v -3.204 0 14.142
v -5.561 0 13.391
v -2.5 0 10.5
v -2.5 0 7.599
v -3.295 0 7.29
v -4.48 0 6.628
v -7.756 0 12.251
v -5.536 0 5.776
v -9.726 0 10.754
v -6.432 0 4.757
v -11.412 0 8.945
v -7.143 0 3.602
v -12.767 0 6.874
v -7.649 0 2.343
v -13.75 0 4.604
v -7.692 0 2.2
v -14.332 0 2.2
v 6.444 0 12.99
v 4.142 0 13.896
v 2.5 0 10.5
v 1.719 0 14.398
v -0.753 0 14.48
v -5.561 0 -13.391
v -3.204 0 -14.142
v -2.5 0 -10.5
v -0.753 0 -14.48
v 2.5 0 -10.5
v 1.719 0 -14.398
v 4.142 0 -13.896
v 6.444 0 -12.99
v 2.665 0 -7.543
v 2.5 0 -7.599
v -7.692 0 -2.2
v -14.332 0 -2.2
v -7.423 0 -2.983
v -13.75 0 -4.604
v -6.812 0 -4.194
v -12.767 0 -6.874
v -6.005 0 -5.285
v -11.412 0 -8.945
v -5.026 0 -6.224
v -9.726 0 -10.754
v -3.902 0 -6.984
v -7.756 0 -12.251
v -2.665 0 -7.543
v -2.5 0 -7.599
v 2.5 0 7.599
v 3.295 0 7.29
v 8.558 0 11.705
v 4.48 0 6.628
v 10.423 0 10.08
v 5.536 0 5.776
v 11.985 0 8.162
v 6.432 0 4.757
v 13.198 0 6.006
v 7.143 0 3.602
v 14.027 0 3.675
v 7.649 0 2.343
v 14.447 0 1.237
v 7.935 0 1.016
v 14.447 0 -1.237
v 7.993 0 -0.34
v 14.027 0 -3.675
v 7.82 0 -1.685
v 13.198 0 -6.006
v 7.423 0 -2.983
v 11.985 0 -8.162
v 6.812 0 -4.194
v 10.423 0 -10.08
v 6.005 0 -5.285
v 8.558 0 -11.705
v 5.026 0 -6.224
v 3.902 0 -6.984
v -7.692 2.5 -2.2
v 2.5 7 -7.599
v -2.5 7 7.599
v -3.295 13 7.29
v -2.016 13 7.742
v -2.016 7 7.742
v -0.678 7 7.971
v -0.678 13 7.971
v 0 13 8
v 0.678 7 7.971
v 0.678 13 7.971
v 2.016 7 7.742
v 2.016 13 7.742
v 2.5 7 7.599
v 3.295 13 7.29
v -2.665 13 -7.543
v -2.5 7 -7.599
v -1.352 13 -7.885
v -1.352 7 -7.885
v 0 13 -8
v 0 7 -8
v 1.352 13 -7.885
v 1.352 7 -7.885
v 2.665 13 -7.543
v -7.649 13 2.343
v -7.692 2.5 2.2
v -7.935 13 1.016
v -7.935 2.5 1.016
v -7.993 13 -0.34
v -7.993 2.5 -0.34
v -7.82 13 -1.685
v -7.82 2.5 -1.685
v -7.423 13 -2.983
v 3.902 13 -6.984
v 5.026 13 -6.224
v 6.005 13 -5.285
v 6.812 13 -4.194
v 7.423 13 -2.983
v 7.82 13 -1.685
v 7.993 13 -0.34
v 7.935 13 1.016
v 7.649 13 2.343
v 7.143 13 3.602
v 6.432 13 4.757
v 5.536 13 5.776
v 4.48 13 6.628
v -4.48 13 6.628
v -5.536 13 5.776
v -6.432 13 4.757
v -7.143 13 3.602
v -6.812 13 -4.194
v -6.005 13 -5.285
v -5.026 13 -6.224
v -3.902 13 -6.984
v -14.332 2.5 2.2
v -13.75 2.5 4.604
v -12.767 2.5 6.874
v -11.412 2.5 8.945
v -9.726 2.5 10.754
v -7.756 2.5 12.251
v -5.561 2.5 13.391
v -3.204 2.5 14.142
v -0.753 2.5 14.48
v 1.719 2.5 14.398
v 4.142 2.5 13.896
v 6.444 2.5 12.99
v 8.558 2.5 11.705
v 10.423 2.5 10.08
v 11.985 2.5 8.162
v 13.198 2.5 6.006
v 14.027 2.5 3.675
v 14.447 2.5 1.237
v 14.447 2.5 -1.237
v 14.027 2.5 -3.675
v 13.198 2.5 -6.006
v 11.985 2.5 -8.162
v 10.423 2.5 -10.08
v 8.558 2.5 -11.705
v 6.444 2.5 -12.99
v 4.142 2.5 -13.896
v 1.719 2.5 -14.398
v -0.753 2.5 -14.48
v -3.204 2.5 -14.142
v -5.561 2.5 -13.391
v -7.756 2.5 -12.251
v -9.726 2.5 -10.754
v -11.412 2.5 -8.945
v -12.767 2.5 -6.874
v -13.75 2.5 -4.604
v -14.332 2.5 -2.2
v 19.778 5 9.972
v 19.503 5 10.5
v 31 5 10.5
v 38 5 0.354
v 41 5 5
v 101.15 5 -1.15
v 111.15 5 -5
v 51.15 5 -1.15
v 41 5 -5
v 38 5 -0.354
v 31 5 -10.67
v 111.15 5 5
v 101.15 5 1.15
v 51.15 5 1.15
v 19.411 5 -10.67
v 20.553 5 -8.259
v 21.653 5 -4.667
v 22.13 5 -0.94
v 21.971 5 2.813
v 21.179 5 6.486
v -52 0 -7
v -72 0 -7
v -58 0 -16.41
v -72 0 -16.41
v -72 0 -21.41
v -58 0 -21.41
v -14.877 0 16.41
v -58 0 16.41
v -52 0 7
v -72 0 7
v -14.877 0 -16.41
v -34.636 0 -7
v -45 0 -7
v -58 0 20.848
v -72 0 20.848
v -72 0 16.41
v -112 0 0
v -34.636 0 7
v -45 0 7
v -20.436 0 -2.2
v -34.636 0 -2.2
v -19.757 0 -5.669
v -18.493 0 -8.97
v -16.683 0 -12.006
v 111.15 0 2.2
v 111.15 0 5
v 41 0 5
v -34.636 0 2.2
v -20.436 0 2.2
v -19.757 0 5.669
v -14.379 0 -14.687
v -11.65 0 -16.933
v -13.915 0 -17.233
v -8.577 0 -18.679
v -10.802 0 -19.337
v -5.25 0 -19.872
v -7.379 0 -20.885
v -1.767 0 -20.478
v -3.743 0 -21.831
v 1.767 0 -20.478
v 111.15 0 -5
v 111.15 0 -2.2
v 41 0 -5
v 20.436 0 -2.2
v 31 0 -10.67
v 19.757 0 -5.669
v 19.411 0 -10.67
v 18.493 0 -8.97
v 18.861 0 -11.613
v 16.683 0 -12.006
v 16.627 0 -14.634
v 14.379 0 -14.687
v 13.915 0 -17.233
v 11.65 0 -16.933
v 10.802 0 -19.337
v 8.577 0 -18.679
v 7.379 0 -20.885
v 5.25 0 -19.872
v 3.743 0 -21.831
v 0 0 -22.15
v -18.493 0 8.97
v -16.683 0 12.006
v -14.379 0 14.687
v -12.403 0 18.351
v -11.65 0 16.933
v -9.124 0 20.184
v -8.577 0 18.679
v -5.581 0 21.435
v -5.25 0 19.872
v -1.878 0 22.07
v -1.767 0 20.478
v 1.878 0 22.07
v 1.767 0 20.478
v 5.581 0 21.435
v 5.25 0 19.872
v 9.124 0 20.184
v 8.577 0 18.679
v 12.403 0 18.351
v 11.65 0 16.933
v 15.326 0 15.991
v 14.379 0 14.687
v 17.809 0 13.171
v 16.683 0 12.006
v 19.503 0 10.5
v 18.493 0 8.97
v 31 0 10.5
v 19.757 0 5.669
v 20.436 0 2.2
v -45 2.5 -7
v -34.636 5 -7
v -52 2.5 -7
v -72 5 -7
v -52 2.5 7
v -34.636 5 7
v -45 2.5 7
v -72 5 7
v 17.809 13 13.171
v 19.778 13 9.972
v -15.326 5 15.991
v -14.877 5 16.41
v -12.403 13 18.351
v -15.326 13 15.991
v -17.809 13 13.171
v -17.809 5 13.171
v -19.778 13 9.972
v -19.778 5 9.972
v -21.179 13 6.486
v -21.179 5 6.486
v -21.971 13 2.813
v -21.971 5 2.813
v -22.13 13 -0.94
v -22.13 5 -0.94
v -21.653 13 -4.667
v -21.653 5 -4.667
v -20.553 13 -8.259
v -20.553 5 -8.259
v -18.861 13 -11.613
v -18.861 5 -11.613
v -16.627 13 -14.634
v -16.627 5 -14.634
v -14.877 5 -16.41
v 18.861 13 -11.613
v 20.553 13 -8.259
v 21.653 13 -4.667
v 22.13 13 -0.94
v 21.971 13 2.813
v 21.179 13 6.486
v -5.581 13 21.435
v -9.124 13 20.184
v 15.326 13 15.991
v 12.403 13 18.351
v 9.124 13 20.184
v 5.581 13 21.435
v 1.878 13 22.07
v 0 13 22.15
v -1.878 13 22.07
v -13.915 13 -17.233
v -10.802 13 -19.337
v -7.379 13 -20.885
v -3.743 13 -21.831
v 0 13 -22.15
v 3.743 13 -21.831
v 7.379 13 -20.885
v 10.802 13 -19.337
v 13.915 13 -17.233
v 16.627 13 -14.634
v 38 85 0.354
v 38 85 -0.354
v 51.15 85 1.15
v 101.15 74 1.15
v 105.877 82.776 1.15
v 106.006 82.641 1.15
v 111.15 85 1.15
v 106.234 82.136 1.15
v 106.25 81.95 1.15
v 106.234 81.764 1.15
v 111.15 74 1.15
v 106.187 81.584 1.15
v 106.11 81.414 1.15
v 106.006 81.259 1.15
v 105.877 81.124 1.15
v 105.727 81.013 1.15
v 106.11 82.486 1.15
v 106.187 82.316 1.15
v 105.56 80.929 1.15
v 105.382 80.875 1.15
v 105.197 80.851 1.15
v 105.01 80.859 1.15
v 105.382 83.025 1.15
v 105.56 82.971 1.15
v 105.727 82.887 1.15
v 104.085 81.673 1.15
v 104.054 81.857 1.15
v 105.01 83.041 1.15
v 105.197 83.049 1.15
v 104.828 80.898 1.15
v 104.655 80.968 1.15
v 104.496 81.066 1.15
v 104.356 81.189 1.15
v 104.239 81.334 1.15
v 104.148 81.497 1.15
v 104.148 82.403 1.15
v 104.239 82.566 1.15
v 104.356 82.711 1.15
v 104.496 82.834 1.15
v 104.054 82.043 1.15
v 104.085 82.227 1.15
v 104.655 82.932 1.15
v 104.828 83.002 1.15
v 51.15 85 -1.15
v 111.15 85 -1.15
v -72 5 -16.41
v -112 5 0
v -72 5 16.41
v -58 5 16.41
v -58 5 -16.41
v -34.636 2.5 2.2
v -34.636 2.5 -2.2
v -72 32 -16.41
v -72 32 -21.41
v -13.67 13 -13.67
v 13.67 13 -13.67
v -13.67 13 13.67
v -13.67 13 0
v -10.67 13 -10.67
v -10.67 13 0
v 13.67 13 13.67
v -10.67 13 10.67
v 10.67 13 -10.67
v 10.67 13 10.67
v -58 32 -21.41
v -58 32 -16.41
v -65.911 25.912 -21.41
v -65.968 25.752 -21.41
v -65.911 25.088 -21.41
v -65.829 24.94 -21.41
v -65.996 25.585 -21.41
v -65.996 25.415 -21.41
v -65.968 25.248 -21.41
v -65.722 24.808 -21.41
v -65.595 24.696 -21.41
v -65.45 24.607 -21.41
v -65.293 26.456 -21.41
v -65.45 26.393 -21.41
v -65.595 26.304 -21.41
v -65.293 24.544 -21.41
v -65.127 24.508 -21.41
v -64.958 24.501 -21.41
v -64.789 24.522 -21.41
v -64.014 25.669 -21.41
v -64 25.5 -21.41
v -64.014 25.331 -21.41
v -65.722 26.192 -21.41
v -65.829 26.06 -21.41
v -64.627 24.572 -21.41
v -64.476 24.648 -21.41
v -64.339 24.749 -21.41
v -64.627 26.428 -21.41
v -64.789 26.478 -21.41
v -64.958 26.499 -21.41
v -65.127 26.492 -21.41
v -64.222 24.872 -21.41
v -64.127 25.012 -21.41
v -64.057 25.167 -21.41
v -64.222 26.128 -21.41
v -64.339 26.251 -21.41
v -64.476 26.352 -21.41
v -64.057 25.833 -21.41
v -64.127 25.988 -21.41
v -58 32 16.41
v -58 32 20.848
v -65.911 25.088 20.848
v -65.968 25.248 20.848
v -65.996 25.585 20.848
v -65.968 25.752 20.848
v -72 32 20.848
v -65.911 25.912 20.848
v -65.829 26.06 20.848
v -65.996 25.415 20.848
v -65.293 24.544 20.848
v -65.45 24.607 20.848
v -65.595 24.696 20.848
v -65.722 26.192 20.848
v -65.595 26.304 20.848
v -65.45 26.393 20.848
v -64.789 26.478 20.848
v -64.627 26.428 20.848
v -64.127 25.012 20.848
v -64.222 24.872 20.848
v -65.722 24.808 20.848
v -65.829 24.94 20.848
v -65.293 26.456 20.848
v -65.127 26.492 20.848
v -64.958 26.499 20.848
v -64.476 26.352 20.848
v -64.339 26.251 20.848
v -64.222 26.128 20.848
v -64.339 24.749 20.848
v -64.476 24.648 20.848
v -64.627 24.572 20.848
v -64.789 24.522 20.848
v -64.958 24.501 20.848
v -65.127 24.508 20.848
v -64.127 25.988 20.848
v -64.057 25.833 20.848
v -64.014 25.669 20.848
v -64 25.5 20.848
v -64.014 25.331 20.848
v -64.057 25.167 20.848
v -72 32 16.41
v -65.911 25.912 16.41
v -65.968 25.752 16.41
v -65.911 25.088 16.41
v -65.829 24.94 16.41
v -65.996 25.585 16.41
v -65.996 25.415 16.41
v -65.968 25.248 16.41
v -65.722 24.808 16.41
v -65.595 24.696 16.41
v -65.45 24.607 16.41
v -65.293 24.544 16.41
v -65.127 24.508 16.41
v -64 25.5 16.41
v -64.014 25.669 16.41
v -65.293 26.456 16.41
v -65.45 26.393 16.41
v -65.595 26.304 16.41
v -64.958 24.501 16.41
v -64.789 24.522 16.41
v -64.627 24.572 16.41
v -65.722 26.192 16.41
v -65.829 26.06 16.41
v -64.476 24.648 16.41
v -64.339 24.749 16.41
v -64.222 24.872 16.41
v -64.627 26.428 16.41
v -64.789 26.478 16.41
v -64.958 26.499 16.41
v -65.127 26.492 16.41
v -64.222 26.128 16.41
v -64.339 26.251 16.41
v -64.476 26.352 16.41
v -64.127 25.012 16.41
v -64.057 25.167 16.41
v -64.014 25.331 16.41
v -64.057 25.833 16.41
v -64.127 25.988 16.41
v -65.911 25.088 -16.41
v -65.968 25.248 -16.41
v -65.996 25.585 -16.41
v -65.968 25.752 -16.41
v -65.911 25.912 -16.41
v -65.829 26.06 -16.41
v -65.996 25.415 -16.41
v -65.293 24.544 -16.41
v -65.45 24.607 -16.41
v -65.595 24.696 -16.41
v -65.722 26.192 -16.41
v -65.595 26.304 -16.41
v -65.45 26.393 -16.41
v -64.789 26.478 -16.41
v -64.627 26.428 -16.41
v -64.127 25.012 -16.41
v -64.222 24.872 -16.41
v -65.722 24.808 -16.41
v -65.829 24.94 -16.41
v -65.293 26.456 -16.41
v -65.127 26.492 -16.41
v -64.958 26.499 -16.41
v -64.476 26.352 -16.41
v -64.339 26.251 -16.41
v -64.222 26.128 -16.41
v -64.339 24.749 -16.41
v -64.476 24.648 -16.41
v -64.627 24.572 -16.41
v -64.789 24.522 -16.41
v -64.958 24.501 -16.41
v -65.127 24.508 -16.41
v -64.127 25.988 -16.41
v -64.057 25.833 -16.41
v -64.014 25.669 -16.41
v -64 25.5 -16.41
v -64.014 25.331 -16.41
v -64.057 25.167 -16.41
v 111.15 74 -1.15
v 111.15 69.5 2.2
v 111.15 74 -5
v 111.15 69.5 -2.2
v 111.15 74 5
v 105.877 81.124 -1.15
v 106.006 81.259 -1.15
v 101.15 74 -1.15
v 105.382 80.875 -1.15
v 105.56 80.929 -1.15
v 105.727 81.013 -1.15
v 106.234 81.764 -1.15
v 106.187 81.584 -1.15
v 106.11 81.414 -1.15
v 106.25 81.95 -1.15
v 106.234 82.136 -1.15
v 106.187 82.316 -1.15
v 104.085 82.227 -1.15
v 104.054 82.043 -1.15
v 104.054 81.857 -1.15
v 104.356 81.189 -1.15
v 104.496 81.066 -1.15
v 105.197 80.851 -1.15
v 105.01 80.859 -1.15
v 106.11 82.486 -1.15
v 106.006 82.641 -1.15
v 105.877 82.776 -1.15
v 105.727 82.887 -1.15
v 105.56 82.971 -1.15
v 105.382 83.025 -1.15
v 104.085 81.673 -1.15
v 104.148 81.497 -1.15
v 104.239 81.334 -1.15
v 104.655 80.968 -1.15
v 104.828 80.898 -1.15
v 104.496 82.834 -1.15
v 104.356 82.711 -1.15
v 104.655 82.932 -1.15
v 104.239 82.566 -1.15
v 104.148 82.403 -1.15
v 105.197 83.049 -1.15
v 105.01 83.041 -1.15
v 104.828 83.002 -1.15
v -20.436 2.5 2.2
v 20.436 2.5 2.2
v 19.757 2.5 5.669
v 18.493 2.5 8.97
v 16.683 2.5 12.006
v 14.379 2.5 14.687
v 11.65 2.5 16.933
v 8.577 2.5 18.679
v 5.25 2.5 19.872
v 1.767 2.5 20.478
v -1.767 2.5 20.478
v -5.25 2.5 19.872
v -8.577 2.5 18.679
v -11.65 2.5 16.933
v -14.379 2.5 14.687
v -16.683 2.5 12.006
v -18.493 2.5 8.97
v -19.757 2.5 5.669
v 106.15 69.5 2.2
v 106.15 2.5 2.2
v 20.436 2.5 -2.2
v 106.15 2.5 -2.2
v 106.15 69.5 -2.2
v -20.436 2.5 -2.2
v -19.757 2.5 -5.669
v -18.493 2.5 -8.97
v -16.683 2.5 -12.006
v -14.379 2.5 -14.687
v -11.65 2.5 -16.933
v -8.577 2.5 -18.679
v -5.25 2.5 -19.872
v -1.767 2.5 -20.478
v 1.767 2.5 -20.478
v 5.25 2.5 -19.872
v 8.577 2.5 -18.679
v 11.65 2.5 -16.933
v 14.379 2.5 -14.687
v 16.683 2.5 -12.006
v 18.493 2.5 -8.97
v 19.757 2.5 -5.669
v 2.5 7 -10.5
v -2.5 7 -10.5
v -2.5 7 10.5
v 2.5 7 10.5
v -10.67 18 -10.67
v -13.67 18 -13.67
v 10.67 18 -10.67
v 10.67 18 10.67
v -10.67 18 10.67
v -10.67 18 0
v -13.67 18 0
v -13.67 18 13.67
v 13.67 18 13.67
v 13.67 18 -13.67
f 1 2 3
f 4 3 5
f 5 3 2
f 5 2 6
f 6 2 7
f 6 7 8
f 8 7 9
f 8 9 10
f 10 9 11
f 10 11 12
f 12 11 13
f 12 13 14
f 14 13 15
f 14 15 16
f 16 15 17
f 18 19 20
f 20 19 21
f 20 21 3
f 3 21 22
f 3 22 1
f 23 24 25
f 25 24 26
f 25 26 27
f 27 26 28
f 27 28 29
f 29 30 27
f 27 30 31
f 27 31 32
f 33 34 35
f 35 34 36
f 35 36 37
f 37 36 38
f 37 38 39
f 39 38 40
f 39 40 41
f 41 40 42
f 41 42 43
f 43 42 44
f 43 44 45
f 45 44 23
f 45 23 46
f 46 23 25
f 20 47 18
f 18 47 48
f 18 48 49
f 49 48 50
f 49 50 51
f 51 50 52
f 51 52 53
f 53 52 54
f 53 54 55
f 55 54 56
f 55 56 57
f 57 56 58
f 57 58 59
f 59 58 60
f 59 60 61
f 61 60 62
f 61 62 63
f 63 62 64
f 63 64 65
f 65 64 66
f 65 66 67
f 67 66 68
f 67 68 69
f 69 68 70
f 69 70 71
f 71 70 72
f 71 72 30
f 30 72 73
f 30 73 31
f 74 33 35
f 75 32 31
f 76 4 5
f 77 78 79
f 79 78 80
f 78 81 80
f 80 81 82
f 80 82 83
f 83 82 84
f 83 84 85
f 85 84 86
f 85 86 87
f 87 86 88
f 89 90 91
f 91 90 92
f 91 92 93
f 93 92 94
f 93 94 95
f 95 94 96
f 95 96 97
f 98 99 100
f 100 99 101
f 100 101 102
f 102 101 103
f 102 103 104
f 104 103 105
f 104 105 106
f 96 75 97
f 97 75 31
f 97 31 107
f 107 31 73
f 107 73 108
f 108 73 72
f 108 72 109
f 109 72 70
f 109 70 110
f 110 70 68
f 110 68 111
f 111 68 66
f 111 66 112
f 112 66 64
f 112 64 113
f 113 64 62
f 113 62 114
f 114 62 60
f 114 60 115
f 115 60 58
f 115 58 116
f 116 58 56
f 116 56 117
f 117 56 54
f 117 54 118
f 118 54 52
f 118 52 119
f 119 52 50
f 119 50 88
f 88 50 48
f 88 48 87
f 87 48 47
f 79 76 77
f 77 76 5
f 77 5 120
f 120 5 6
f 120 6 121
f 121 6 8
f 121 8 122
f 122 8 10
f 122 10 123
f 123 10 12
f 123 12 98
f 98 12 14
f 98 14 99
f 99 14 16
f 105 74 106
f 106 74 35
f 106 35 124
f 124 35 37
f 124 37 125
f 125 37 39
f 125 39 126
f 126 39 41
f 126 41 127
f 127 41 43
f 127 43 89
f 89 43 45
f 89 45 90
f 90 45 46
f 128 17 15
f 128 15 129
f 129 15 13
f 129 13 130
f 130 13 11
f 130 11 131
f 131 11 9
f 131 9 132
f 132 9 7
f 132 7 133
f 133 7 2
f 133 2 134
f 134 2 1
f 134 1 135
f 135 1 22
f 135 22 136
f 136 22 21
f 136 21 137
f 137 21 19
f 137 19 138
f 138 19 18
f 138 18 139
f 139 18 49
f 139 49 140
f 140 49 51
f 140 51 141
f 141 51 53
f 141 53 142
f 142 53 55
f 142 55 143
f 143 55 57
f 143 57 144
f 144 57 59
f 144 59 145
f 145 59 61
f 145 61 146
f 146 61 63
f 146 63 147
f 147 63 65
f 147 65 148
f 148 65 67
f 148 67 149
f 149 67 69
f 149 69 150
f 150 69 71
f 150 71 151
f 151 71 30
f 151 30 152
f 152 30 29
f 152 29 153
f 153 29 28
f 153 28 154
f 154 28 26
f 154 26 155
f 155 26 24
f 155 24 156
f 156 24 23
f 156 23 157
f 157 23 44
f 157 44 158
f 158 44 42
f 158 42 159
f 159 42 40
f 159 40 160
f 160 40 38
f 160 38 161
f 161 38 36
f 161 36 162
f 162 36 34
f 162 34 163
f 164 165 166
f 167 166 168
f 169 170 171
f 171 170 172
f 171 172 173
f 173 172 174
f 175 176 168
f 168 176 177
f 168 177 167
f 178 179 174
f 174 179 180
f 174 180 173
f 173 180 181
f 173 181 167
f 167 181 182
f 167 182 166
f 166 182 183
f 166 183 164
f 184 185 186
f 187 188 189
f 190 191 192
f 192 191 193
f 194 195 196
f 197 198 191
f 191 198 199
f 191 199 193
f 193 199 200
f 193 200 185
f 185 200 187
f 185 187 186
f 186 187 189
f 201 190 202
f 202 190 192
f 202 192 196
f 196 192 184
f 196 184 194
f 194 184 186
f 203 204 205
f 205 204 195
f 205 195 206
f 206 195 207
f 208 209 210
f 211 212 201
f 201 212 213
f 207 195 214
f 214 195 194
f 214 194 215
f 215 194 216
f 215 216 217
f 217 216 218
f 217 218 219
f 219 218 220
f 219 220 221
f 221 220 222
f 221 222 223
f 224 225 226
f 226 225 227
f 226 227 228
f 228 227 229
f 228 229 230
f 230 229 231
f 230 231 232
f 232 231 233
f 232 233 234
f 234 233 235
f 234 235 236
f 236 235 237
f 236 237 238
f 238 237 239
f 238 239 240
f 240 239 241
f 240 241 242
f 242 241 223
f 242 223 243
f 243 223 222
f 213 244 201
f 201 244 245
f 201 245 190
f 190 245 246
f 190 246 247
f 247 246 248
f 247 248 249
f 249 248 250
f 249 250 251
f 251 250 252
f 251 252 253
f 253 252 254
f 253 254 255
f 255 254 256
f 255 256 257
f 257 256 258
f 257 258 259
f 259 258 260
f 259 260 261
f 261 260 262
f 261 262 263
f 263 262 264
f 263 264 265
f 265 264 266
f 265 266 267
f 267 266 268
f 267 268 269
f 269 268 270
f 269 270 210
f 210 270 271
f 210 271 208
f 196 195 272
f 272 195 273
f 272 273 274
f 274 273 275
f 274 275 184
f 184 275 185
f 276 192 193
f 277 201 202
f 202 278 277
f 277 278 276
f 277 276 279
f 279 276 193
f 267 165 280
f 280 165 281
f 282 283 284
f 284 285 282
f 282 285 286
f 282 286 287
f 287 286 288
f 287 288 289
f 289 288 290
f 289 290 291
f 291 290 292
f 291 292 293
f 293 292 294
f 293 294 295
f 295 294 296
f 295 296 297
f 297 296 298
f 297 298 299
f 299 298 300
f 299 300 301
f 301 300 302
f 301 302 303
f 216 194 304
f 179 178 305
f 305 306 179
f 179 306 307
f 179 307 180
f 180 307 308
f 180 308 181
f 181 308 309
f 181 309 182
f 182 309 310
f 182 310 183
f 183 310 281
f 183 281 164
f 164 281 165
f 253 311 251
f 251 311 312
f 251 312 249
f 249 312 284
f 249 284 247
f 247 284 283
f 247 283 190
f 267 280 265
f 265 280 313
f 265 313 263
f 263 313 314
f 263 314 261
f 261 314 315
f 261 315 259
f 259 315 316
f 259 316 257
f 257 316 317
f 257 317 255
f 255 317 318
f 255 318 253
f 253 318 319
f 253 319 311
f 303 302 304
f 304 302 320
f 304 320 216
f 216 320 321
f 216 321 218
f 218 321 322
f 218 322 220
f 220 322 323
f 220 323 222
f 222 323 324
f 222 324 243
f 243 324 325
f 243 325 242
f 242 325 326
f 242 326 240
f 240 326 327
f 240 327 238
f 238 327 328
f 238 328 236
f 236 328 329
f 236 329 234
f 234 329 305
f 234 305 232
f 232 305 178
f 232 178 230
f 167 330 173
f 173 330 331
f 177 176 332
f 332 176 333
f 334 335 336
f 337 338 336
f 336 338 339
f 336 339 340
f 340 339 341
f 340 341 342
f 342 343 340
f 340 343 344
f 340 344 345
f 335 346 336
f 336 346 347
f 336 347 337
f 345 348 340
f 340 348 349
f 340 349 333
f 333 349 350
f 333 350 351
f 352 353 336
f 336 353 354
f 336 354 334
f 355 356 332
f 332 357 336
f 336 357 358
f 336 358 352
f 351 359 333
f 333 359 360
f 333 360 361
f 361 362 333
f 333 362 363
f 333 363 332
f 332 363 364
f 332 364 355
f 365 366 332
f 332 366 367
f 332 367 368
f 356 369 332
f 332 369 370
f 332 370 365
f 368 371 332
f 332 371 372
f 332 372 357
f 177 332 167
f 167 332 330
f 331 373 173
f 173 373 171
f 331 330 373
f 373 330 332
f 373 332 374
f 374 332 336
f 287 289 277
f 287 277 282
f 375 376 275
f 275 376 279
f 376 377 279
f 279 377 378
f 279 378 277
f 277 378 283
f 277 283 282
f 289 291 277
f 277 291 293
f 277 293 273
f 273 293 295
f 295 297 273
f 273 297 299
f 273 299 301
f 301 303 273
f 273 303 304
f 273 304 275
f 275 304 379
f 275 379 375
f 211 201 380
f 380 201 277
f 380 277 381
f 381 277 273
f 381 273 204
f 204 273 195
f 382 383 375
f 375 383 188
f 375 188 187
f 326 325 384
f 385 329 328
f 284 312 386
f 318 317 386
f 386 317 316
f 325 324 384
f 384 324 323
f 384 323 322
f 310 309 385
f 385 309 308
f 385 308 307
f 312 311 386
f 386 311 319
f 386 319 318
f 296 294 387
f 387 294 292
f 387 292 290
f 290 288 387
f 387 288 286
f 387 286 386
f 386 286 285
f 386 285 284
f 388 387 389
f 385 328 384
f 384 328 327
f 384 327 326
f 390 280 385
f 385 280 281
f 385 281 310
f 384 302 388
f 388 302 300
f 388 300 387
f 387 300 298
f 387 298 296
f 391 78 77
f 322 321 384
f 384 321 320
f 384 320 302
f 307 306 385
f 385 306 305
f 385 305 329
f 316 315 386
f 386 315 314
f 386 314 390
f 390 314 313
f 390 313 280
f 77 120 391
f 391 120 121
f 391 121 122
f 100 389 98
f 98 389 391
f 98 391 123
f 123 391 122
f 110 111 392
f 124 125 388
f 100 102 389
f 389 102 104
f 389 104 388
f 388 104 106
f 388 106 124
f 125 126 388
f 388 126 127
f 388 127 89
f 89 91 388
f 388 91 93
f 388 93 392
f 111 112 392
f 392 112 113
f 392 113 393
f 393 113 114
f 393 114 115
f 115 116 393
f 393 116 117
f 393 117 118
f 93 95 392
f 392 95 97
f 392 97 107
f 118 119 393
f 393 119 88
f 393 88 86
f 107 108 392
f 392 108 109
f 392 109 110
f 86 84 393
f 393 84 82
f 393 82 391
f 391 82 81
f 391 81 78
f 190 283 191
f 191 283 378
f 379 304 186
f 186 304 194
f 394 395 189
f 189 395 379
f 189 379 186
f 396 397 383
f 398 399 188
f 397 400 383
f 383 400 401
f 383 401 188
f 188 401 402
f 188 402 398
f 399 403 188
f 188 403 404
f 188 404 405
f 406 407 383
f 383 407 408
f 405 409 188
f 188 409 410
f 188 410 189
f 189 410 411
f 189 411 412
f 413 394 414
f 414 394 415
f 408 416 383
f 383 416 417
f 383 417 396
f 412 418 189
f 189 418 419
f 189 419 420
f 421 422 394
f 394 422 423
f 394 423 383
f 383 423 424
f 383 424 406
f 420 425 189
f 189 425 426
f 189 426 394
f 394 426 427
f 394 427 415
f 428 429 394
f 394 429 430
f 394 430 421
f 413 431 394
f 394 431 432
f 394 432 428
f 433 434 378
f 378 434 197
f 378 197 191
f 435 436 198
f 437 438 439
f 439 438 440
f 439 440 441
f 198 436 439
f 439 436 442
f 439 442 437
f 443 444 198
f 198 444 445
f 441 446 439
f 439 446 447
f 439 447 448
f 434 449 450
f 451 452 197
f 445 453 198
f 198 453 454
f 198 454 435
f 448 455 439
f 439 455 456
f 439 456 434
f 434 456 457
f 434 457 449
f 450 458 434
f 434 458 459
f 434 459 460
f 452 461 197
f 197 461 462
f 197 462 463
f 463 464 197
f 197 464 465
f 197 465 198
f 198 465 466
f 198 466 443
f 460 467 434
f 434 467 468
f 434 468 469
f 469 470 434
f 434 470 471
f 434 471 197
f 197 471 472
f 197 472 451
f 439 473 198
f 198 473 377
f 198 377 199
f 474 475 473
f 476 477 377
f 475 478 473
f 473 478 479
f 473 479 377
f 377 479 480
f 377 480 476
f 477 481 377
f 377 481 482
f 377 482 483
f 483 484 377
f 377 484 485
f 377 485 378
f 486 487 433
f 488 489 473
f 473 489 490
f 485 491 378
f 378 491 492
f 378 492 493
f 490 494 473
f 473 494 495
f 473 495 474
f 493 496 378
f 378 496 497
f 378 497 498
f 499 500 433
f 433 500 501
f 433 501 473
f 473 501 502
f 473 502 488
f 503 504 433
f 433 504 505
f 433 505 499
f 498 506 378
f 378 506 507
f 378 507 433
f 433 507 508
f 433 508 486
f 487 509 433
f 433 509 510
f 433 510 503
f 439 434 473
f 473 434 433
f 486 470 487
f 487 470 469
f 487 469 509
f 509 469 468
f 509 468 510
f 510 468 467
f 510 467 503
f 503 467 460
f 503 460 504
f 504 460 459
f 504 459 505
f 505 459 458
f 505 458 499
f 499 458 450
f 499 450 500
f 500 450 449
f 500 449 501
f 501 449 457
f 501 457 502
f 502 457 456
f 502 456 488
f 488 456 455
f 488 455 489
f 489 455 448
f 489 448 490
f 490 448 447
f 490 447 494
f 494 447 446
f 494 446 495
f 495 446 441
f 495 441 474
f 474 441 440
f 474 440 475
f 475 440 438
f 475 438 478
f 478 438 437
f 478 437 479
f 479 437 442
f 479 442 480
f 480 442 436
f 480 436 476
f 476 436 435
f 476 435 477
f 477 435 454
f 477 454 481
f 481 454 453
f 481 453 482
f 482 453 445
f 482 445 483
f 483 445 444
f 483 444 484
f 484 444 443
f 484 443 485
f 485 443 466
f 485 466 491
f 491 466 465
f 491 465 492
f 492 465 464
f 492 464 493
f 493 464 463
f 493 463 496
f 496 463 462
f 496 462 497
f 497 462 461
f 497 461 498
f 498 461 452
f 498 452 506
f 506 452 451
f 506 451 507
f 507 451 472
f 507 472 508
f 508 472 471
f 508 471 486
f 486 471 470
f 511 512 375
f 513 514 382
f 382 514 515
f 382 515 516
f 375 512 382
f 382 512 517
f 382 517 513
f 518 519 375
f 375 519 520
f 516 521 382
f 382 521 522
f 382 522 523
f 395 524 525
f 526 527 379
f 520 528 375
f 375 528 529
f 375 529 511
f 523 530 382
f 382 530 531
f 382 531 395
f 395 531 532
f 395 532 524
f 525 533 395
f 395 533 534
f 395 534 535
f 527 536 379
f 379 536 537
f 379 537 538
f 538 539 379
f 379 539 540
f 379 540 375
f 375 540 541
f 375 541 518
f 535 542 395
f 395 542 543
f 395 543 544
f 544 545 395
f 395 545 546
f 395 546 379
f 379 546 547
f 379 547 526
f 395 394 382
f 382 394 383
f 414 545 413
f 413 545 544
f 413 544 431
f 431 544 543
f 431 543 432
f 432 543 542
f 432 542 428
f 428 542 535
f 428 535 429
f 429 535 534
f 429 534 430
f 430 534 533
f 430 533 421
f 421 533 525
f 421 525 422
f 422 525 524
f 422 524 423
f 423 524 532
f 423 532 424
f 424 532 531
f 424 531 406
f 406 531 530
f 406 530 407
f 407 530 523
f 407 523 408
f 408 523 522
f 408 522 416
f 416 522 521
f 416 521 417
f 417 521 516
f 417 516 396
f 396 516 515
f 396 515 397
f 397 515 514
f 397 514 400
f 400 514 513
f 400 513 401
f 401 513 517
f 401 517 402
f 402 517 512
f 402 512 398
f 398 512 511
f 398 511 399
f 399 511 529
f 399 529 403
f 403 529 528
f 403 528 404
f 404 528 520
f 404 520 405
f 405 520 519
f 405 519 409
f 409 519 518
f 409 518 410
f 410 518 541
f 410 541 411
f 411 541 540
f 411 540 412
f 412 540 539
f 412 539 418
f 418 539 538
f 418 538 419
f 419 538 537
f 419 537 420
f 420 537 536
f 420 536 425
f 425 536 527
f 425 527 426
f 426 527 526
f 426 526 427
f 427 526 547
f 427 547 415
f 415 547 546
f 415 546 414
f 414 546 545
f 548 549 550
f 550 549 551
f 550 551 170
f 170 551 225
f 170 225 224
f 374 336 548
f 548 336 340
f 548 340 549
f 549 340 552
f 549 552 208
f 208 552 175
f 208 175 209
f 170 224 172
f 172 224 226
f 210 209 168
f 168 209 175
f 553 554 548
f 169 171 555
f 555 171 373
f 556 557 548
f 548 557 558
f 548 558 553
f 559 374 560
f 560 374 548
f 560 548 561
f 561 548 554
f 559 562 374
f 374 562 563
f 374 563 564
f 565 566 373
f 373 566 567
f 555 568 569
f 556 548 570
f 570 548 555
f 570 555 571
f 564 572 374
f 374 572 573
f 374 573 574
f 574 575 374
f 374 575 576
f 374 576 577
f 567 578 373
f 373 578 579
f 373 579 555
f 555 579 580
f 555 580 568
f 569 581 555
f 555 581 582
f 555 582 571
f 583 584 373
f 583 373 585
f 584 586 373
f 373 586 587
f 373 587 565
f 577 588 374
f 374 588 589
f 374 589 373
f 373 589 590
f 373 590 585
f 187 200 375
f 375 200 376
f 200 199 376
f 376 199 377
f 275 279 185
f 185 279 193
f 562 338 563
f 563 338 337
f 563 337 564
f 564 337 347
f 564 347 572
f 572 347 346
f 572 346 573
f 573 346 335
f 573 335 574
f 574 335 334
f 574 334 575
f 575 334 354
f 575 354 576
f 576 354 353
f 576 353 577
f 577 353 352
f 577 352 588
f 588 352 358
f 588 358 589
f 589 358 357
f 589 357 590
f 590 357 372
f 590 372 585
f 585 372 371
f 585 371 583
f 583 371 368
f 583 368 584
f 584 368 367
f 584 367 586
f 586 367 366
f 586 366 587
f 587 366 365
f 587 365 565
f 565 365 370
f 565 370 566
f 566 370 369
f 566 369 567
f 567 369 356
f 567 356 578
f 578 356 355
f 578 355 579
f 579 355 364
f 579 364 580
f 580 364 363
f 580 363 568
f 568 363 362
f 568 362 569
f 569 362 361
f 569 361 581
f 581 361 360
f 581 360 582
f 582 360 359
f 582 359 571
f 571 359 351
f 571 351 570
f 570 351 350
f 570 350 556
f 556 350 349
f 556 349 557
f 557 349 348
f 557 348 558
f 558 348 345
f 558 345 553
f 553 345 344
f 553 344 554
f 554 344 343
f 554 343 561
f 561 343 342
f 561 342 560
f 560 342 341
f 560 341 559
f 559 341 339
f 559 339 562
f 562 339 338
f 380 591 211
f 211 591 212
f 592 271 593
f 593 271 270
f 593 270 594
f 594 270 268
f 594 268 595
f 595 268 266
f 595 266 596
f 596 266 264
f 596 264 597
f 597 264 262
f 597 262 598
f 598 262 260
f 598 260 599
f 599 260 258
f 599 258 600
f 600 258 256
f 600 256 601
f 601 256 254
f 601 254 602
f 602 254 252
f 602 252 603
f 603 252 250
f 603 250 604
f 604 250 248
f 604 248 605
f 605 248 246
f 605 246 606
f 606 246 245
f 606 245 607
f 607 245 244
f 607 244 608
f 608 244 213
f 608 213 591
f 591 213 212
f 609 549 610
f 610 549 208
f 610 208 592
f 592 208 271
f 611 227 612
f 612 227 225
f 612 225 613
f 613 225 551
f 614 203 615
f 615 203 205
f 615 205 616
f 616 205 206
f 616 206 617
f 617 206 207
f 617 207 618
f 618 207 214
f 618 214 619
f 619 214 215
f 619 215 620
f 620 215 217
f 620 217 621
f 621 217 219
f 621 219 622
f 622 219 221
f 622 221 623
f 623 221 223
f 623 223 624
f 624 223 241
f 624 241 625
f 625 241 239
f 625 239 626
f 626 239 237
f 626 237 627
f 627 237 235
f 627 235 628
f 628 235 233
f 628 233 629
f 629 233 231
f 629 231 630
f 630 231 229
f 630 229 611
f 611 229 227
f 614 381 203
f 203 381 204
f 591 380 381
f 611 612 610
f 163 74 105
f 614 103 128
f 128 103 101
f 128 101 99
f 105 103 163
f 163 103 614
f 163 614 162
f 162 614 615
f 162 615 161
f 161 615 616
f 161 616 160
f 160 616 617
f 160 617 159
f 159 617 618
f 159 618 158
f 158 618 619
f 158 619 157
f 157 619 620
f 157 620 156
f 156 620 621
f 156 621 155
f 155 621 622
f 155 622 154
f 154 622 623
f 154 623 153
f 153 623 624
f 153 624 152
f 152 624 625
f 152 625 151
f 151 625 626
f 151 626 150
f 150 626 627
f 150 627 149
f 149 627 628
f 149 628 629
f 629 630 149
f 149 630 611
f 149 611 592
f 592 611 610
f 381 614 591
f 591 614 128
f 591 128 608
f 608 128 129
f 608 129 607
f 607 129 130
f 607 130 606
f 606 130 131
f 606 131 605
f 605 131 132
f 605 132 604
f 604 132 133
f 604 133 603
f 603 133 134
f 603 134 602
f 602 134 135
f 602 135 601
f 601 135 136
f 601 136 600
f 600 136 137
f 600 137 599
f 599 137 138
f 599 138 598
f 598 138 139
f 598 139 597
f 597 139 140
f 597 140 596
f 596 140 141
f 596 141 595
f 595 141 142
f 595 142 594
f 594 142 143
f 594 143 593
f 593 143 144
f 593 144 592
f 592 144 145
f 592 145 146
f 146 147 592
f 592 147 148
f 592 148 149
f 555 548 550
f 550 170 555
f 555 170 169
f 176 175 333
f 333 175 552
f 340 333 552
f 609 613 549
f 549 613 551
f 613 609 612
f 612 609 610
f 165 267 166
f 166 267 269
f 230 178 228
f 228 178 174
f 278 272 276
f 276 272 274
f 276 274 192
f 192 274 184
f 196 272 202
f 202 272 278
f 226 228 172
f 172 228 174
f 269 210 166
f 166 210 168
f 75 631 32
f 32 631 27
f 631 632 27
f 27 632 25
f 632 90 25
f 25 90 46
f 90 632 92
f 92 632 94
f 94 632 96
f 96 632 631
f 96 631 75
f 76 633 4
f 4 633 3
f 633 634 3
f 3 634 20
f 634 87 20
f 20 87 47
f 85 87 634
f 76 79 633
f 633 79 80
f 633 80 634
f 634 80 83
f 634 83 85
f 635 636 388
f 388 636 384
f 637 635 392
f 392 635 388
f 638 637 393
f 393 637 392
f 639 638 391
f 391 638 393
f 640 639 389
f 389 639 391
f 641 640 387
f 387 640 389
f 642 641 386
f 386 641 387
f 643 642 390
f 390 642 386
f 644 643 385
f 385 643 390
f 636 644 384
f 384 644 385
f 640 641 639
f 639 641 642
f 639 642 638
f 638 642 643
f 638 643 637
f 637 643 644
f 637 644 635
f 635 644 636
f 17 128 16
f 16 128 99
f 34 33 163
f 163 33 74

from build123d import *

# Parameters (mm, degrees)
SKETCH1_R                 = 22.15
SKETCH1_R_2               = 16.15
BOSS_EXTRUDE1_DEPTH       = 10
SKETCH2_R                 = 22.15
SKETCH2_R_2               = 12.15
BOSS_EXTRUDE2_DEPTH       = 3
BOSS_EXTRUDE3_START       = -13
BOSS_EXTRUDE3_DEPTH       = 5
SKETCH10_W                = 7
SKETCH10_H                = 4.438143107
SKETCH10_H_2              = 5
BOSS_EXTRUDE5_DEPTH       = 27
SKETCH11_R                = 1
CUT_EXTRUDE2_DEPTH        = 90.759903691
SKETCH12_W                = 14
SKETCH12_H                = 42.258143107
BOSS_EXTRUDE6_DEPTH       = 5
BOSS_EXTRUDE7_DEPTH       = 5
BOSS_EXTRUDE8_DEPTH       = 80
SKETCH16_W                = 26.34
SKETCH16_H                = 26.34
SKETCH16_W_2              = 21.34
SKETCH16_H_2              = 21.34
BOSS_EXTRUDE9_DEPTH       = 6
SKETCH17_W                = 2.5
SKETCH17_H                = 10.67
CUT_EXTRUDE3_DEPTH        = 6
BOSS_EXTRUDE11_DEPTH      = 5
BOSS_EXTRUDE12_START      = -2
SKETCH23_R                = 12.15
SKETCH23_R_2              = 8
BOSS_EXTRUDE12_DEPTH      = 1
SKETCH24_W                = 37.364360225
SKETCH24_H                = 7
CUT_EXTRUDE5_DEPTH        = 10
SKETCH25_R                = 1.1
CUT_EXTRUDE6_DEPTH        = 10
CUT_EXTRUDE8_DEPTH        = 80
SKETCH29_R                = 20.553911634
SKETCH29_R_2              = 17.753911634
CUT_EXTRUDE9_DEPTH        = 2.5
BOSS_EXTRUDE13_REACH      = 136.976
SKETCH30_W                = 7
SKETCH30_H                = 3
SKETCH31_W                = 3
SKETCH31_H                = 14
CUT_EXTRUDE10_DEPTH       = 135.976377563
CUT_EXTRUDE11_DEPTH       = 140.4081149
SKETCH36_W                = 26.34
SKETCH36_H                = 26.34
CUT_EXTRUDE12_DEPTH       = 6
SKETCH37_W                = 3
SKETCH37_H                = 4.4
CUT_EXTRUDE13_DEPTH       = 2.5
BOSS_EXTRUDE15_DEPTH      = 69
SKETCH41_W                = 4.4
SKETCH41_H                = 67
CUT_EXTRUDE14_DEPTH       = 5
BOSS_EXTRUDE16_REACH      = 175.826
BOSS_EXTRUDE16_END_RADIUS = 22.15
SKETCH42_W                = 5.67
SKETCH42_H                = 5
SKETCH42_W_2              = 5.5
SKETCH43_W                = 7
SKETCH43_H                = 2.5
BOSS_EXTRUDE17_DEPTH      = 14
CUT_EXTRUDE15_DEPTH       = 8
CUT_EXTRUDE16_DEPTH       = 140.4081149
BOSS_EXTRUDE18_START      = 2
SKETCH48_R                = 12.15
SKETCH48_R_2              = 8
BOSS_EXTRUDE18_DEPTH      = 2
BOSS_EXTRUDE19_START      = 10
SKETCH49_R                = 16.15
SKETCH49_R_2              = 8
BOSS_EXTRUDE19_DEPTH      = 10
SKETCH50_R                = 17.753911634
SKETCH50_R_2              = 14.5
CUT_EXTRUDE17_DEPTH       = 2.5
CUT_EXTRUDE18_DEPTH       = 7
BOSS_EXTRUDE20_DEPTH      = 5
CUT_EXTRUDE20_DEPTH       = 2.5


with BuildPart() as part:
    # Sketch1 → Boss-Extrude1 (new body)
    with BuildSketch(Plane(origin=(0, 0, 0), x_dir=(1, 0, 0), z_dir=(0, 1, 0))):
        with Locations(Location((0, 0, 0), (0, 0, 270))):
            Circle(SKETCH1_R)
        with Locations(Location((0, 0, 0), (0, 0, 270))):
            Circle(SKETCH1_R_2, mode=Mode.SUBTRACT)
    extrude(amount=BOSS_EXTRUDE1_DEPTH)

    # Sketch2 → Boss-Extrude2 (add)
    with BuildSketch(Plane(origin=(0, 10, 0), x_dir=(1, 0, 0), z_dir=(0, 1, 0))):
        with Locations(Location((0, 0, 0), (0, 0, 270))):
            Circle(SKETCH2_R)
        with Locations(Location((0, 0, 0), (0, 0, 270))):
            Circle(SKETCH2_R_2, mode=Mode.SUBTRACT)
    extrude(amount=BOSS_EXTRUDE2_DEPTH)

    # Sketch3 → Boss-Extrude3 (add)
    with BuildSketch(Plane(origin=(0, 13, 0), x_dir=(1, 0, 0), z_dir=(0, 1, 0)).offset(BOSS_EXTRUDE3_START)):
        with BuildLine():
            Line((-65, 0), (-22.15, 0))
            ThreePointArc((-22.15, 0), (-20.25036977, 8.974687972), (-14.877311585, 16.41))
            Line((-14.877311585, 16.41), (-65, 16.41))
            Line((-65, 16.41), (-65, 0))
        make_face()
        with BuildLine():
            ThreePointArc((-14.877311585, -16.41), (-20.25036977, -8.974687972), (-22.15, 0))
            Line((-22.15, 0), (-65, 0))
            Line((-65, 0), (-65, -16.41))
            Line((-65, -16.41), (-14.877311585, -16.41))
        make_face()
    extrude(amount=BOSS_EXTRUDE3_DEPTH)



with BuildPart() as body_2:
    # Sketch10 → Boss-Extrude5 (new body)
    with BuildSketch(Plane(origin=(0, 5, 0), x_dir=(1, 0, 0), z_dir=(0, 1, 0))):
        with Locations((-68.5, -18.629071554)):
            Rectangle(SKETCH10_W, SKETCH10_H)
        with Locations((-61.5, -18.629071554)):
            Rectangle(SKETCH10_W, SKETCH10_H)
        with Locations((-68.5, 18.91)):
            Rectangle(SKETCH10_W, SKETCH10_H_2)
        with Locations((-61.5, 18.91)):
            Rectangle(SKETCH10_W, SKETCH10_H_2)
    extrude(amount=BOSS_EXTRUDE5_DEPTH)

    # Sketch11 → Cut-Extrude2 (cut, through all)
    with BuildSketch(Plane.XY.offset(20.848143107)):
        with Locations((-65, 25.5)):
            Circle(SKETCH11_R)
    extrude(amount=-CUT_EXTRUDE2_DEPTH, mode=Mode.SUBTRACT)


with BuildPart() as part_1:
    add(part.part)

    add(body_2.part)  # Boss-Extrude6 merges body 2
    # Sketch12 → Boss-Extrude6 (add)
    with BuildSketch(Plane.XZ):
        with Locations((-65, -0.280928446)):
            Rectangle(SKETCH12_W, SKETCH12_H)
    extrude(amount=-BOSS_EXTRUDE6_DEPTH)

    # Sketch13 → Boss-Extrude7 (add)
    with BuildSketch(Plane.XZ):
        with BuildLine():
            Line((111.15, 0), (22.15, 0))
            ThreePointArc((22.15, 0), (22.006607786, -2.516289677), (21.578287699, -5))
            Line((21.578287699, -5), (111.15, -5))
            Line((111.15, -5), (111.15, 0))
        make_face()
        with BuildLine():
            ThreePointArc((21.578287699, 5), (22.006607786, 2.516289677), (22.15, 0))
            Line((22.15, 0), (111.15, 0))
            Line((111.15, 0), (111.15, 5))
            Line((111.15, 5), (21.578287699, 5))
        make_face()
    extrude(amount=-BOSS_EXTRUDE7_DEPTH)

    # Sketch14 → Boss-Extrude8 (add)
    with BuildSketch(Plane(origin=(0, 5, 0), x_dir=(1, 0, 0), z_dir=(0, 1, 0))):
        Polygon((111.15, -1.15), (111.15, 0), (111.15, 1.15), (51.15, 1.15), (32.15, 0), (51.15, -1.15), align=None)
    extrude(amount=BOSS_EXTRUDE8_DEPTH)

    # Sketch16 → Boss-Extrude9 (add)
    with BuildSketch(Plane(origin=(0, 13, 0), x_dir=(1, 0, 0), z_dir=(0, 1, 0))):
        with Locations((0.03, 0.03)):
            Rectangle(SKETCH16_W, SKETCH16_H)
        with Locations((0.03, 0.03)):
            Rectangle(SKETCH16_W_2, SKETCH16_H_2, mode=Mode.SUBTRACT)
    extrude(amount=BOSS_EXTRUDE9_DEPTH)

    # Sketch17 → Cut-Extrude3 (cut)
    with BuildSketch(Plane(origin=(0, 19, 0), x_dir=(1, 0, 0), z_dir=(0, 1, 0))):
        with Locations((-11.89, 5.365)):
            Rectangle(SKETCH17_W, SKETCH17_H)
    extrude(amount=-CUT_EXTRUDE3_DEPTH, mode=Mode.SUBTRACT)

    # Sketch20 → Boss-Extrude11 (add)
    with BuildSketch(Plane(origin=(0, 5, 0), x_dir=(1, 0, 0), z_dir=(0, 1, 0))):
        Polygon((-112, 0), (-72, 0), (-72, 16.41), align=None)
        Polygon((-72, -16.41), (-72, 0), (-112, 0), align=None)
    extrude(amount=-BOSS_EXTRUDE11_DEPTH)

    # Sketch23 → Boss-Extrude12 (add)
    with BuildSketch(Plane.XZ.offset(-10).offset(BOSS_EXTRUDE12_START)):
        with Locations(Location((0, 0, 0), (0, 0, 270))):
            Circle(SKETCH23_R)
        with Locations(Location((0, 0, 0), (0, 0, 270))):
            Circle(SKETCH23_R_2, mode=Mode.SUBTRACT)
    extrude(amount=-BOSS_EXTRUDE12_DEPTH)

    # Sketch24 → Cut-Extrude5 (cut)
    with BuildSketch(Plane(origin=(0, 5, 0), x_dir=(1, 0, 0), z_dir=(0, 1, 0))):
        with Locations((-53.317819888, 3.5)):
            Rectangle(SKETCH24_W, SKETCH24_H)
        with Locations((-53.317819888, -3.5)):
            Rectangle(SKETCH24_W, SKETCH24_H)
    extrude(amount=-CUT_EXTRUDE5_DEPTH, mode=Mode.SUBTRACT)

    # Sketch25 → Cut-Extrude6 (cut)
    with BuildSketch(Plane.XY.offset(1.15)):
        with Locations((105.15, 81.95)):
            Circle(SKETCH25_R)
    extrude(amount=-CUT_EXTRUDE6_DEPTH, mode=Mode.SUBTRACT)

    # Sketch28 → Cut-Extrude8 (cut)
    with BuildSketch(Plane(origin=(0, 85, 0), x_dir=(1, 0, 0), z_dir=(0, 1, 0))):
        Polygon((36.15, 0.242105263), (32.15, 0), (36.15, 0), align=None)
        Polygon((36.15, 0), (32.15, 0), (36.15, -0.242105263), align=None)
    extrude(amount=-CUT_EXTRUDE8_DEPTH, mode=Mode.SUBTRACT)

    # Sketch29 → Cut-Extrude9 (cut)
    # profile 1 of 4: a face of its own
    with BuildSketch(Plane.XZ):
        with BuildLine():
            Line((111.15, -2.2), (111.15, 0))
            Line((111.15, 0), (111.15, 2.2))
            Line((111.15, 2.2), (20.435833319, 2.2))
            ThreePointArc((20.435833319, 2.2), (20.524370827, 1.101583234), (20.553911634, 0))
            ThreePointArc((20.553911634, 0), (20.524370827, -1.101583234), (20.435833319, -2.2))
            Line((20.435833319, -2.2), (111.15, -2.2))
        make_face()
    # profile 2 of 4: a face of its own
    with BuildSketch(Plane.XZ):
        Circle(SKETCH29_R)
        with Locations(Location((0, 0, 0), (0, 0, 270))):
            Circle(SKETCH29_R_2, mode=Mode.SUBTRACT)
    # profile 3 of 4: a face of its own
    with BuildSketch(Plane.XZ):
        with BuildLine():
            Line((-34.635639775, -2.2), (-20.435833319, -2.2))
            ThreePointArc((-20.435833319, -2.2), (-20.524370827, -1.101583234), (-20.553911634, 0))
            Line((-20.553911634, 0), (-34.635639775, 0))
            Line((-34.635639775, 0), (-34.635639775, -2.2))
        make_face()
    # profile 4 of 4: a face of its own
    with BuildSketch(Plane.XZ):
        with BuildLine():
            ThreePointArc((-20.553911634, 0), (-20.524370827, 1.101583234), (-20.435833319, 2.2))
            Line((-20.435833319, 2.2), (-34.635639775, 2.2))
            Line((-34.635639775, 2.2), (-34.635639775, 0))
            Line((-34.635639775, 0), (-20.553911634, 0))
        make_face()
    extrude(amount=-CUT_EXTRUDE9_DEPTH, mode=Mode.SUBTRACT)

    # Boss-Extrude13: up to this face of the body (flat: up to its plane)
    boss_extrude13_end = Plane(part_1.part.faces().sort_by_distance((0, 0, 17.251755182))[0])
    # Sketch30 → Boss-Extrude13 (add, up to the picked face)
    with BuildSketch(Plane(origin=(0, 13, 0), x_dir=(1, 0, 0), z_dir=(0, 1, 0)), mode=Mode.PRIVATE) as boss_extrude13_sk1:
        Polygon((-38.34, -10.5), (-38.34, 0), (-38.34, 10.67), (-31.34, 10.67), (-31.34, 13.67), (-41.34, 13.67), (-41.34, -13.5), (-38.34, -13.5), align=None)
    boss_extrude13_tool1 = split(extrude(boss_extrude13_sk1.sketch, amount=-BOSS_EXTRUDE13_REACH, mode=Mode.PRIVATE), bisect_by=boss_extrude13_end, keep=Keep.BOTH, mode=Mode.PRIVATE)
    # Sketch30 → Boss-Extrude13 (add, up to the picked face)
    with BuildSketch(Plane(origin=(0, 13, 0), x_dir=(1, 0, 0), z_dir=(0, 1, 0)), mode=Mode.PRIVATE) as boss_extrude13_sk2:
        with Locations((-34.84, -12)):
            Rectangle(SKETCH30_W, SKETCH30_H)
    boss_extrude13_tool2 = split(extrude(boss_extrude13_sk2.sketch, amount=-BOSS_EXTRUDE13_REACH, mode=Mode.PRIVATE), bisect_by=boss_extrude13_end, keep=Keep.BOTH, mode=Mode.PRIVATE)
    # Sketch30 → Boss-Extrude13 (add, up to the picked face)
    with BuildSketch(Plane(origin=(0, 13, 0), x_dir=(1, 0, 0), z_dir=(0, 1, 0)), mode=Mode.PRIVATE) as boss_extrude13_sk3:
        Polygon((38, -10.5), (31, -10.5), (31, -13.5), (41, -13.5), (41, 13.67), (38, 13.67), (38, 10.67), align=None)
    boss_extrude13_tool3 = split(extrude(boss_extrude13_sk3.sketch, amount=-BOSS_EXTRUDE13_REACH, mode=Mode.PRIVATE), bisect_by=boss_extrude13_end, keep=Keep.BOTH, mode=Mode.PRIVATE)
    # Sketch30 → Boss-Extrude13 (add, up to the picked face)
    with BuildSketch(Plane(origin=(0, 13, 0), x_dir=(1, 0, 0), z_dir=(0, 1, 0)), mode=Mode.PRIVATE) as boss_extrude13_sk4:
        with Locations((34.5, 12.17)):
            Rectangle(SKETCH30_W, SKETCH30_H)
    boss_extrude13_tool4 = split(extrude(boss_extrude13_sk4.sketch, amount=-BOSS_EXTRUDE13_REACH, mode=Mode.PRIVATE), bisect_by=boss_extrude13_end, keep=Keep.BOTH, mode=Mode.PRIVATE)
    add(boss_extrude13_tool1.solids().sort_by(Axis((-38.81571, 13, -2.56071), (0, -1, 0)))[0])
    add(boss_extrude13_tool2.solids().sort_by(Axis((-34.84, 13, 12), (0, -1, 0)))[0])
    add(boss_extrude13_tool3.solids().sort_by(Axis((38.47571, 13, 2.39071), (0, -1, 0)))[0])
    add(boss_extrude13_tool4.solids().sort_by(Axis((34.5, 13, -12.17), (0, -1, 0)))[0])

    # Sketch31 → Cut-Extrude10 (cut, through all)
    with BuildSketch(Plane(origin=(0, 13, 0), x_dir=(1, 0, 0), z_dir=(0, 1, 0))):
        with Locations((-39.84, 0)):
            Rectangle(SKETCH31_W, SKETCH31_H)
    extrude(amount=-CUT_EXTRUDE10_DEPTH, mode=Mode.SUBTRACT)

    # Sketch33 → Cut-Extrude11 (cut, through all)
    with BuildSketch(Plane(origin=(0, 5, 0), x_dir=(1, 0, 0), z_dir=(0, 1, 0))):
        Polygon((38, 0.354078947), (36.15, 0.242105263), (36.15, -0.242105263), (38, -0.354078947), align=None)
    extrude(amount=CUT_EXTRUDE11_DEPTH, mode=Mode.SUBTRACT)

    # Sketch36 → Cut-Extrude12 (cut)
    with BuildSketch(Plane(origin=(0, 19, 0), x_dir=(1, 0, 0), z_dir=(0, 1, 0))):
        with Locations((0.03, 0.03)):
            Rectangle(SKETCH36_W, SKETCH36_H)
    extrude(amount=-CUT_EXTRUDE12_DEPTH, mode=Mode.SUBTRACT)

    # Sketch37 → Cut-Extrude13 (cut)
    with BuildSketch(Plane.XZ):
        with Locations((39.5, 0)):
            Rectangle(SKETCH37_W, SKETCH37_H)
    extrude(amount=-CUT_EXTRUDE13_DEPTH, mode=Mode.SUBTRACT)

    # Sketch40 → Boss-Extrude15 (add)
    with BuildSketch(Plane(origin=(0, 5, 0), x_dir=(1, 0, 0), z_dir=(0, 1, 0))):
        Polygon((101.15, -1.15), (111.15, -5), (111.15, -1.15), align=None)
        Polygon((101.15, 1.15), (111.15, 5), (111.15, 1.15), align=None)
    extrude(amount=BOSS_EXTRUDE15_DEPTH)

    # Sketch41 → Cut-Extrude14 (cut)
    with BuildSketch(Plane(origin=(111.15, 0, 0), x_dir=(0, 0, -1), z_dir=(1, 0, 0))):
        with Locations((0, 36)):
            Rectangle(SKETCH41_W, SKETCH41_H)
    extrude(amount=-CUT_EXTRUDE14_DEPTH, mode=Mode.SUBTRACT)

    # Boss-Extrude16: up to this cylinder (the profile starts outside it)
    boss_extrude16_end = Plane(origin=(0, 2.5, 0), z_dir=(0, -1, 0)) * Cylinder(BOSS_EXTRUDE16_END_RADIUS, 396.952, mode=Mode.PRIVATE)
    # Sketch42 → Boss-Extrude16 (add, up to the surface)
    with BuildSketch(Plane.ZY.offset(-38), mode=Mode.PRIVATE) as boss_extrude16_sk1:
        with Locations((-7.835, 2.5)):
            Rectangle(SKETCH42_W, SKETCH42_H)
    boss_extrude16_tool1 = extrude(boss_extrude16_sk1.sketch, amount=BOSS_EXTRUDE16_REACH, mode=Mode.PRIVATE) - boss_extrude16_end
    add(boss_extrude16_tool1.solids().sort_by_distance((38, 2.5, -7.835))[0])
    # Sketch42 → Boss-Extrude16 (add, up to the surface)
    with BuildSketch(Plane.ZY.offset(-38), mode=Mode.PRIVATE) as boss_extrude16_sk2:
        with Locations((7.75, 2.5)):
            Rectangle(SKETCH42_W_2, SKETCH42_H)
    boss_extrude16_tool2 = extrude(boss_extrude16_sk2.sketch, amount=BOSS_EXTRUDE16_REACH, mode=Mode.PRIVATE) - boss_extrude16_end
    add(boss_extrude16_tool2.solids().sort_by_distance((38, 2.5, 7.75))[0])

    # Sketch43 → Boss-Extrude17 (add)
    with BuildSketch(Plane.XY.offset(-7)):
        with Locations((-48.5, 1.25)):
            Rectangle(SKETCH43_W, SKETCH43_H)
    extrude(amount=BOSS_EXTRUDE17_DEPTH)

    # Sketch44 → Cut-Extrude15 (cut)
    with BuildSketch(Plane(origin=(0, 13, 0), x_dir=(1, 0, 0), z_dir=(0, 1, 0))):
        Polygon((41, -13.5), (41, -0.535657895), (38, -0.354078947), (38, 0.354078947), (41, 0.535657895), (41, 13.67), (31, 13.67), (31, -13.5), align=None)
        Polygon((-41.34, 13.67), (-41.34, 7), (-38.34, 7), (-38.34, 10.67), (-31.34, 10.67), (-31.34, 13.67), align=None)
        Polygon((-38.34, 7), (-41.34, 7), (-41.34, -13.5), (-31.34, -13.5), (-31.34, 10.67), (-38.34, 10.67), align=None)
    extrude(amount=-CUT_EXTRUDE15_DEPTH, mode=Mode.SUBTRACT)

    # Sketch45 → Cut-Extrude16 (cut, through all)
    with BuildSketch(Plane(origin=(0, 5, 0), x_dir=(1, 0, 0), z_dir=(0, 1, 0))):
        Polygon((31, -10.5), (41, -5), (41, -13.5), (31, -13.5), align=None)
        Polygon((41, 13.67), (31, 13.67), (31, 10.67), (41, 5), align=None)
    extrude(amount=-CUT_EXTRUDE16_DEPTH, mode=Mode.SUBTRACT)

    # Sketch48 → Boss-Extrude18 (add)
    with BuildSketch(Plane(origin=(0, 12, 0), x_dir=(-1, 0, 0), z_dir=(0, -1, 0)).offset(BOSS_EXTRUDE18_START)):
        Circle(SKETCH48_R)
        with Locations(Location((0, 0, 0), (0, 0, 270))):
            Circle(SKETCH48_R_2, mode=Mode.SUBTRACT)
    extrude(amount=-BOSS_EXTRUDE18_DEPTH)

    # Sketch49 → Boss-Extrude19 (add)
    with BuildSketch(Plane.XZ.offset(-10).offset(BOSS_EXTRUDE19_START)):
        Circle(SKETCH49_R)
        with Locations(Location((0, 0, 0), (0, 0, 90))):
            Circle(SKETCH49_R_2, mode=Mode.SUBTRACT)
    extrude(amount=-BOSS_EXTRUDE19_DEPTH)

    # Sketch50 → Cut-Extrude17 (cut)
    with BuildSketch(Plane(origin=(0, 0, 0), x_dir=(-1, 0, 0), z_dir=(0, -1, 0))):
        Circle(SKETCH50_R)
        with Locations(Location((0, 0, 0), (0, 0, 90))):
            Circle(SKETCH50_R_2, mode=Mode.SUBTRACT)
    extrude(amount=-CUT_EXTRUDE17_DEPTH, mode=Mode.SUBTRACT)

    # Sketch51 → Cut-Extrude18 (cut)
    with BuildSketch(Plane.XZ):
        with BuildLine():
            ThreePointArc((-2.5, 7.599342077), (-1.265950905, 7.899200485), (0, 8))
            ThreePointArc((0, 8), (1.265950905, 7.899200485), (2.5, 7.599342077))
            Line((2.5, 7.599342077), (2.5, 10.5))
            Line((2.5, 10.5), (-2.5, 10.5))
            Line((-2.5, 10.5), (-2.5, 7.599342077))
        make_face()
        with BuildLine():
            ThreePointArc((0, -8), (-1.265950905, -7.899200485), (-2.5, -7.599342077))
            Line((-2.5, -7.599342077), (-2.5, -10.5))
            Line((-2.5, -10.5), (2.5, -10.5))
            Line((2.5, -10.5), (2.5, -7.599342077))
            ThreePointArc((2.5, -7.599342077), (1.265950905, -7.899200485), (0, -8))
        make_face()
    extrude(amount=-CUT_EXTRUDE18_DEPTH, mode=Mode.SUBTRACT)

    # Sketch52 → Boss-Extrude20 (add)
    with BuildSketch(Plane(origin=(0, 13, 0), x_dir=(1, 0, 0), z_dir=(0, 1, 0))):
        Polygon((-10.67, -10.67), (-10.67, 0), (-13.67, 0), (-13.67, -13.67), (13.67, -13.67), (13.67, 13.67), (-13.67, 13.67), (-10.67, 10.67), (10.67, 10.67), (10.67, -10.67), align=None)
    extrude(amount=BOSS_EXTRUDE20_DEPTH)

    # Sketch53 → Cut-Extrude20 (cut)
    with BuildSketch(Plane.XZ):
        with BuildLine():
            Line((-7.691553809, 2.2), (-14.332131733, 2.2))
            ThreePointArc((-14.332131733, 2.2), (-14.5, 0), (-14.332131733, -2.2))
            Line((-14.332131733, -2.2), (-7.691553809, -2.2))
            ThreePointArc((-7.691553809, -2.2), (-8, 0), (-7.691553809, 2.2))
        make_face()
    extrude(amount=-CUT_EXTRUDE20_DEPTH, mode=Mode.SUBTRACT)


solid = part_1.part
